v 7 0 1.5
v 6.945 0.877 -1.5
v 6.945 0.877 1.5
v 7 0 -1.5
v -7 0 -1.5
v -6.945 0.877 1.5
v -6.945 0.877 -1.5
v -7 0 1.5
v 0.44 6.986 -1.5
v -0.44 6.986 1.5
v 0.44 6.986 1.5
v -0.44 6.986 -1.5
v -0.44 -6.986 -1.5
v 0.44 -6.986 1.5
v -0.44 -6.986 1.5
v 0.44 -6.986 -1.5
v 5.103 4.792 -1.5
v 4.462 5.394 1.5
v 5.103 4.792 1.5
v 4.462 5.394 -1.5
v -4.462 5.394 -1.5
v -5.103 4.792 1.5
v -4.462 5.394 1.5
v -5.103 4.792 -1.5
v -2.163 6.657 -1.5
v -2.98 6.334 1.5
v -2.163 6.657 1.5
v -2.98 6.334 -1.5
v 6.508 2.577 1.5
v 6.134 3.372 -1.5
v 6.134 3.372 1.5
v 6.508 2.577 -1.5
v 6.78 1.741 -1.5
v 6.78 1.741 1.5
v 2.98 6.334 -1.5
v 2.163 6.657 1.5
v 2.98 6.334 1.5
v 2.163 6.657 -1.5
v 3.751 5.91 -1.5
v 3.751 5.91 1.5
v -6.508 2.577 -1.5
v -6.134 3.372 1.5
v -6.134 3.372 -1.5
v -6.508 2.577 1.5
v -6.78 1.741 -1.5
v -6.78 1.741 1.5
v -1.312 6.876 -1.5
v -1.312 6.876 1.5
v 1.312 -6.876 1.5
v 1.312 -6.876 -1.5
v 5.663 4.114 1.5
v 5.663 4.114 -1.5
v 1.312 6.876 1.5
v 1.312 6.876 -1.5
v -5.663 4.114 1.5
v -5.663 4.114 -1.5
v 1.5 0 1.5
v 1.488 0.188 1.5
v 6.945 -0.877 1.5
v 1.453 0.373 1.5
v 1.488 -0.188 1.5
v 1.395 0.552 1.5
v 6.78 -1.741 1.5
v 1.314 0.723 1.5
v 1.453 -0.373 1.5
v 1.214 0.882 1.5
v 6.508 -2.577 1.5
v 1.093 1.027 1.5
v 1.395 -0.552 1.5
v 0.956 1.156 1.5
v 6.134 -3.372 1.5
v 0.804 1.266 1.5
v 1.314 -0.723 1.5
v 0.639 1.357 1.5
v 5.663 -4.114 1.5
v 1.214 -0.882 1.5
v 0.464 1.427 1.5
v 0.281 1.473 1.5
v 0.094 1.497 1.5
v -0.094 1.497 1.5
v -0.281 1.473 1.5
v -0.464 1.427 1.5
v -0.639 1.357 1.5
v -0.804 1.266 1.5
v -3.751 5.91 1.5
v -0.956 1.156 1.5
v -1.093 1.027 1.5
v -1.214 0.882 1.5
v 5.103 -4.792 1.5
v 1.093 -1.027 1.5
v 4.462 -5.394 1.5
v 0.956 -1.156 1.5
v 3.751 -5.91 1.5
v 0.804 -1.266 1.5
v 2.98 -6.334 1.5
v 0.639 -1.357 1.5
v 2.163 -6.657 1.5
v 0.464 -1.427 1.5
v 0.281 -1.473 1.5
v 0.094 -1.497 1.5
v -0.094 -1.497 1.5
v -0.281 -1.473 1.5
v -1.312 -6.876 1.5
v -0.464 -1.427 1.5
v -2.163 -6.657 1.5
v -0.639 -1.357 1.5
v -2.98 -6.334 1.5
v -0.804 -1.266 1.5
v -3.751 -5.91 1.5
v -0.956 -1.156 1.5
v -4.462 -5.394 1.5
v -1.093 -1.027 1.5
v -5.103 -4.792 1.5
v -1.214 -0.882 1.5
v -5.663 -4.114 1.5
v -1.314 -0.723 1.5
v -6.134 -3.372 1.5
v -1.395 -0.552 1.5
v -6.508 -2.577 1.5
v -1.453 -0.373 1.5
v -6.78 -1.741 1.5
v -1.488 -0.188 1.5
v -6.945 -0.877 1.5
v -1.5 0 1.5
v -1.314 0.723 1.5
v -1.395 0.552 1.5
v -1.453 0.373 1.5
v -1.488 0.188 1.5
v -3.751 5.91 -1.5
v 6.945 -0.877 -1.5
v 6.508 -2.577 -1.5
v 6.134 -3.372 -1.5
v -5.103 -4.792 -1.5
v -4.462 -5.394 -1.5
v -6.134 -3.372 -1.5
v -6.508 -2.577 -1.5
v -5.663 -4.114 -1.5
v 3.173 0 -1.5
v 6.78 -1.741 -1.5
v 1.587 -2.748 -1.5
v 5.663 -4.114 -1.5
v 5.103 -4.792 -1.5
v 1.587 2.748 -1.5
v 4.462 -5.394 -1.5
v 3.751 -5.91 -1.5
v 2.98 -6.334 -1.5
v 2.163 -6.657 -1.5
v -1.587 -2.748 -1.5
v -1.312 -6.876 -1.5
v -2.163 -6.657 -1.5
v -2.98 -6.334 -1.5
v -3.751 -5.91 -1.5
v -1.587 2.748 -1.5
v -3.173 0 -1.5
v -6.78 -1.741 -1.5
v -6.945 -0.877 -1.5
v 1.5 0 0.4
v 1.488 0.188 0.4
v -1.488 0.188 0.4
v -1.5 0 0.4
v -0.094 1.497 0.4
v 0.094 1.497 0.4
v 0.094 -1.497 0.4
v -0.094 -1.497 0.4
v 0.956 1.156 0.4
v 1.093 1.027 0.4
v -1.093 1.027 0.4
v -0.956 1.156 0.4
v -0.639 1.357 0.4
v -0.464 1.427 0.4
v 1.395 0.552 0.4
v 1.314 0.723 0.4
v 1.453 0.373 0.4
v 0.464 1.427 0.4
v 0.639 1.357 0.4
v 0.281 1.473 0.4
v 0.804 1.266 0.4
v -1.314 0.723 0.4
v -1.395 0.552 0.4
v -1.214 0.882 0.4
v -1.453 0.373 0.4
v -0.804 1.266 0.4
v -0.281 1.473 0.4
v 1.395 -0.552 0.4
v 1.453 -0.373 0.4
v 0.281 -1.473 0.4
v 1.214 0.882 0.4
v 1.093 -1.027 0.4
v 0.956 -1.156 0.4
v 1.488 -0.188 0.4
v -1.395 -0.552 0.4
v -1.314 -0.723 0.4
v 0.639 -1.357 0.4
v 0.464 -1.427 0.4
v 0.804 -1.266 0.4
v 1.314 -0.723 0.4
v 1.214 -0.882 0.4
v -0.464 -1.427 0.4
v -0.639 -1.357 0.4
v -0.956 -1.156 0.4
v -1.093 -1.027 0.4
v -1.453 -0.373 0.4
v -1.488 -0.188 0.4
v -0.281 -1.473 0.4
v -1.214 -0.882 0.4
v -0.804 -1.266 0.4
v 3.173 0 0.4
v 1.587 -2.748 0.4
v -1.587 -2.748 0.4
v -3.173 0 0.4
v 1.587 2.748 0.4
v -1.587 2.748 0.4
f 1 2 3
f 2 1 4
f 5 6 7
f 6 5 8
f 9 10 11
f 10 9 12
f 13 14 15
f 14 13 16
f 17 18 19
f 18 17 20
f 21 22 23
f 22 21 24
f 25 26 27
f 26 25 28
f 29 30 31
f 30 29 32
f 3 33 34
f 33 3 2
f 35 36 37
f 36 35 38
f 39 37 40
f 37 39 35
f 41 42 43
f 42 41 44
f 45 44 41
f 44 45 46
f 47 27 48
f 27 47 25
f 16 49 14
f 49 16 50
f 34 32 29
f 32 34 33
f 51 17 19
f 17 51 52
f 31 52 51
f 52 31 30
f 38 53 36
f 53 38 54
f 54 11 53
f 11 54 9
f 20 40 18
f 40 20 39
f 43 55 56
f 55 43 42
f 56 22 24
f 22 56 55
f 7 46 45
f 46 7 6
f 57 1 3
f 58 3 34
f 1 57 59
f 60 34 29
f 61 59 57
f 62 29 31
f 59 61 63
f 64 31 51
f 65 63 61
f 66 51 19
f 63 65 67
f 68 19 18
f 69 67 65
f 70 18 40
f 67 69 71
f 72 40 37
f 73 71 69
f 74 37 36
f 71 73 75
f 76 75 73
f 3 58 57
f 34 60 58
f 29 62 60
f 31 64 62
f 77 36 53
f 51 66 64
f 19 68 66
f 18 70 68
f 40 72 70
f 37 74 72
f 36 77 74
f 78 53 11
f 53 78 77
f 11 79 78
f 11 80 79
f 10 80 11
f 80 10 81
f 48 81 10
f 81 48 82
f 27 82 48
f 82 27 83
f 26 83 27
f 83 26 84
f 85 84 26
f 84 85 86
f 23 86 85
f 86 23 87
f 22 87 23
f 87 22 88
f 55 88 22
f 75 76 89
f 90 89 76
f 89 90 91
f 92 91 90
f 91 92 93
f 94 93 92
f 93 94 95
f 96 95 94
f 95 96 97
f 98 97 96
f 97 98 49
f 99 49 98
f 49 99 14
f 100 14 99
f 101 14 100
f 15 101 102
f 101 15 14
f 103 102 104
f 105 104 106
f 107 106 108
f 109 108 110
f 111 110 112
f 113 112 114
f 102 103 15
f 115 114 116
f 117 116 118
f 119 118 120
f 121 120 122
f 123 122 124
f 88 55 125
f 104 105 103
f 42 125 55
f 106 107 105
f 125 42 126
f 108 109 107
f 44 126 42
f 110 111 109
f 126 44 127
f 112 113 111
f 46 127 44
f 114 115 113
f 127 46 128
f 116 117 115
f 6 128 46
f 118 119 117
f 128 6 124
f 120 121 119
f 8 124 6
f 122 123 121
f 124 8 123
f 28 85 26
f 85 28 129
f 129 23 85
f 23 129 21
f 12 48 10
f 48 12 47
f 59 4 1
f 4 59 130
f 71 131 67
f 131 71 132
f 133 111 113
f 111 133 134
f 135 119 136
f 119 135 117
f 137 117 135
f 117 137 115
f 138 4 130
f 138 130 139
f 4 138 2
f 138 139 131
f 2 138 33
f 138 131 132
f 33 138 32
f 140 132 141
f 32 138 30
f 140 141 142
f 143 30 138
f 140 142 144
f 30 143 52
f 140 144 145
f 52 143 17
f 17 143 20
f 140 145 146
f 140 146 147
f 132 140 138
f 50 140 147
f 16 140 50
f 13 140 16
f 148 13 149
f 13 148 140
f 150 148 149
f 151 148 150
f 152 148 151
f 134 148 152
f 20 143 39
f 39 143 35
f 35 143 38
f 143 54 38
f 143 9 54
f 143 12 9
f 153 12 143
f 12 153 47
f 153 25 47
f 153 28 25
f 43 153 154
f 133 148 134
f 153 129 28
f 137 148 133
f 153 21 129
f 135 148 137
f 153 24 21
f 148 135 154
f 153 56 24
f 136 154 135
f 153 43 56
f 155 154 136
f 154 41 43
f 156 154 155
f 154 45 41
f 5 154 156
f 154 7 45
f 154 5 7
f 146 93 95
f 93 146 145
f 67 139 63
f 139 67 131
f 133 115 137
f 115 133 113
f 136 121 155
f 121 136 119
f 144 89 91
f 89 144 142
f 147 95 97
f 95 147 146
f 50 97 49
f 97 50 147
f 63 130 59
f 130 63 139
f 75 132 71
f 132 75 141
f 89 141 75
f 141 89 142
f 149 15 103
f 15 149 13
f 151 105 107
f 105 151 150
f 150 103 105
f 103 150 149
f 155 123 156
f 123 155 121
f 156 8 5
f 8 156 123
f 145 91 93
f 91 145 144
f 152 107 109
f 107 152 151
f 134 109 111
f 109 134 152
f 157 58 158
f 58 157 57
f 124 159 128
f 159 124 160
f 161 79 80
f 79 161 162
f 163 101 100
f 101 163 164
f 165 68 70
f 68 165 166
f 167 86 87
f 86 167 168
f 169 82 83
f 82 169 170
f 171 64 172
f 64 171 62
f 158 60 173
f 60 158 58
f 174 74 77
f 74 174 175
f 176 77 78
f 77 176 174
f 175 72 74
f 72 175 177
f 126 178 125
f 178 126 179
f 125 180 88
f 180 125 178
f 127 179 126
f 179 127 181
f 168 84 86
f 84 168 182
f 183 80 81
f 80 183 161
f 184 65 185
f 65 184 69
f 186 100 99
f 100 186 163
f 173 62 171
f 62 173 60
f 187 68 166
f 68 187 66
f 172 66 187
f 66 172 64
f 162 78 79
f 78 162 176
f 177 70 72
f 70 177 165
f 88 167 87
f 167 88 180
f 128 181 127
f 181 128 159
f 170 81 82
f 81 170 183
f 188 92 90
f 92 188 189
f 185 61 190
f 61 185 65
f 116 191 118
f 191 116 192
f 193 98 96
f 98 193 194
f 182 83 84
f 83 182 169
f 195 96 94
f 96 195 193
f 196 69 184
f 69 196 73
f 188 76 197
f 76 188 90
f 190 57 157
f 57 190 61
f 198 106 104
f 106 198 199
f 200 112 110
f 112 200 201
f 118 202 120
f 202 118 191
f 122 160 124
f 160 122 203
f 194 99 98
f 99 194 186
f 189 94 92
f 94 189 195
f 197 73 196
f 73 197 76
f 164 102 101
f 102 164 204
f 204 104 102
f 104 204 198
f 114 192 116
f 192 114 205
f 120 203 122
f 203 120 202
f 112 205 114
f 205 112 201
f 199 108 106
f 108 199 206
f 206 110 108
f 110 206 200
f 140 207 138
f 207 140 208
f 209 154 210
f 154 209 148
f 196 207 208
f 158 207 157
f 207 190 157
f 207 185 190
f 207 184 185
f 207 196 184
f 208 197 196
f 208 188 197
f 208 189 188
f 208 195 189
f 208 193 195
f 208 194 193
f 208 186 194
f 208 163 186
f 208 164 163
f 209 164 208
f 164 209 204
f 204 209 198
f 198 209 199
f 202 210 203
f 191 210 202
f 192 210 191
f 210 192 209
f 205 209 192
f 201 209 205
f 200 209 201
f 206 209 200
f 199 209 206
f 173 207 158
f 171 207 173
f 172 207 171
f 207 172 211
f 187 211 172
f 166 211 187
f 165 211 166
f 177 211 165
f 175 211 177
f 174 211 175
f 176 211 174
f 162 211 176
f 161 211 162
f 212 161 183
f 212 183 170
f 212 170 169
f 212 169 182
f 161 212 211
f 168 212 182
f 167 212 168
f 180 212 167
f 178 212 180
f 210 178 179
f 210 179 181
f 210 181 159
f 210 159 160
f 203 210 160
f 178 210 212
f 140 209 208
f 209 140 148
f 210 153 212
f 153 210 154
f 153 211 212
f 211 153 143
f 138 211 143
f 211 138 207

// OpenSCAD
$fn = 50;


difference() {
	union() {
		translate(v = [0, 0, -1.5000000000]) {
			rotate(a = [0, 0, 0]) {
				cylinder(h = 3, r = 7.0000000000);
			}
		}
		translate(v = [0, 0, -1.5000000000]) {
			rotate(a = [0, 0, 0]) {
				cylinder(h = 3, r = 3.0000000000);
			}
		}
	}
	union() {
		translate(v = [0, 0, -125.0000000000]) {
			rotate(a = [0, 0, 0]) {
				cylinder(h = 250, r = 1.5000000000);
			}
		}
		translate(v = [0, 0, -2.1000000000]) {
			rotate(a = [0, 0, 0]) {
				#translate(v = [0, 0, 0]) {
					rotate(a = [0, 0, 0]) {
						linear_extrude(height = 2.5000000000) {
							polygon(points = [[3.1735000000, 0.0000000000], [1.5867500000, 2.7483316189], [-1.5867500000, 2.7483316189], [-3.1735000000, 0.0000000000], [-1.5867500000, -2.7483316189], [1.5867500000, -2.7483316189]]);
						}
					}
				}
			}
		}
	}
}
